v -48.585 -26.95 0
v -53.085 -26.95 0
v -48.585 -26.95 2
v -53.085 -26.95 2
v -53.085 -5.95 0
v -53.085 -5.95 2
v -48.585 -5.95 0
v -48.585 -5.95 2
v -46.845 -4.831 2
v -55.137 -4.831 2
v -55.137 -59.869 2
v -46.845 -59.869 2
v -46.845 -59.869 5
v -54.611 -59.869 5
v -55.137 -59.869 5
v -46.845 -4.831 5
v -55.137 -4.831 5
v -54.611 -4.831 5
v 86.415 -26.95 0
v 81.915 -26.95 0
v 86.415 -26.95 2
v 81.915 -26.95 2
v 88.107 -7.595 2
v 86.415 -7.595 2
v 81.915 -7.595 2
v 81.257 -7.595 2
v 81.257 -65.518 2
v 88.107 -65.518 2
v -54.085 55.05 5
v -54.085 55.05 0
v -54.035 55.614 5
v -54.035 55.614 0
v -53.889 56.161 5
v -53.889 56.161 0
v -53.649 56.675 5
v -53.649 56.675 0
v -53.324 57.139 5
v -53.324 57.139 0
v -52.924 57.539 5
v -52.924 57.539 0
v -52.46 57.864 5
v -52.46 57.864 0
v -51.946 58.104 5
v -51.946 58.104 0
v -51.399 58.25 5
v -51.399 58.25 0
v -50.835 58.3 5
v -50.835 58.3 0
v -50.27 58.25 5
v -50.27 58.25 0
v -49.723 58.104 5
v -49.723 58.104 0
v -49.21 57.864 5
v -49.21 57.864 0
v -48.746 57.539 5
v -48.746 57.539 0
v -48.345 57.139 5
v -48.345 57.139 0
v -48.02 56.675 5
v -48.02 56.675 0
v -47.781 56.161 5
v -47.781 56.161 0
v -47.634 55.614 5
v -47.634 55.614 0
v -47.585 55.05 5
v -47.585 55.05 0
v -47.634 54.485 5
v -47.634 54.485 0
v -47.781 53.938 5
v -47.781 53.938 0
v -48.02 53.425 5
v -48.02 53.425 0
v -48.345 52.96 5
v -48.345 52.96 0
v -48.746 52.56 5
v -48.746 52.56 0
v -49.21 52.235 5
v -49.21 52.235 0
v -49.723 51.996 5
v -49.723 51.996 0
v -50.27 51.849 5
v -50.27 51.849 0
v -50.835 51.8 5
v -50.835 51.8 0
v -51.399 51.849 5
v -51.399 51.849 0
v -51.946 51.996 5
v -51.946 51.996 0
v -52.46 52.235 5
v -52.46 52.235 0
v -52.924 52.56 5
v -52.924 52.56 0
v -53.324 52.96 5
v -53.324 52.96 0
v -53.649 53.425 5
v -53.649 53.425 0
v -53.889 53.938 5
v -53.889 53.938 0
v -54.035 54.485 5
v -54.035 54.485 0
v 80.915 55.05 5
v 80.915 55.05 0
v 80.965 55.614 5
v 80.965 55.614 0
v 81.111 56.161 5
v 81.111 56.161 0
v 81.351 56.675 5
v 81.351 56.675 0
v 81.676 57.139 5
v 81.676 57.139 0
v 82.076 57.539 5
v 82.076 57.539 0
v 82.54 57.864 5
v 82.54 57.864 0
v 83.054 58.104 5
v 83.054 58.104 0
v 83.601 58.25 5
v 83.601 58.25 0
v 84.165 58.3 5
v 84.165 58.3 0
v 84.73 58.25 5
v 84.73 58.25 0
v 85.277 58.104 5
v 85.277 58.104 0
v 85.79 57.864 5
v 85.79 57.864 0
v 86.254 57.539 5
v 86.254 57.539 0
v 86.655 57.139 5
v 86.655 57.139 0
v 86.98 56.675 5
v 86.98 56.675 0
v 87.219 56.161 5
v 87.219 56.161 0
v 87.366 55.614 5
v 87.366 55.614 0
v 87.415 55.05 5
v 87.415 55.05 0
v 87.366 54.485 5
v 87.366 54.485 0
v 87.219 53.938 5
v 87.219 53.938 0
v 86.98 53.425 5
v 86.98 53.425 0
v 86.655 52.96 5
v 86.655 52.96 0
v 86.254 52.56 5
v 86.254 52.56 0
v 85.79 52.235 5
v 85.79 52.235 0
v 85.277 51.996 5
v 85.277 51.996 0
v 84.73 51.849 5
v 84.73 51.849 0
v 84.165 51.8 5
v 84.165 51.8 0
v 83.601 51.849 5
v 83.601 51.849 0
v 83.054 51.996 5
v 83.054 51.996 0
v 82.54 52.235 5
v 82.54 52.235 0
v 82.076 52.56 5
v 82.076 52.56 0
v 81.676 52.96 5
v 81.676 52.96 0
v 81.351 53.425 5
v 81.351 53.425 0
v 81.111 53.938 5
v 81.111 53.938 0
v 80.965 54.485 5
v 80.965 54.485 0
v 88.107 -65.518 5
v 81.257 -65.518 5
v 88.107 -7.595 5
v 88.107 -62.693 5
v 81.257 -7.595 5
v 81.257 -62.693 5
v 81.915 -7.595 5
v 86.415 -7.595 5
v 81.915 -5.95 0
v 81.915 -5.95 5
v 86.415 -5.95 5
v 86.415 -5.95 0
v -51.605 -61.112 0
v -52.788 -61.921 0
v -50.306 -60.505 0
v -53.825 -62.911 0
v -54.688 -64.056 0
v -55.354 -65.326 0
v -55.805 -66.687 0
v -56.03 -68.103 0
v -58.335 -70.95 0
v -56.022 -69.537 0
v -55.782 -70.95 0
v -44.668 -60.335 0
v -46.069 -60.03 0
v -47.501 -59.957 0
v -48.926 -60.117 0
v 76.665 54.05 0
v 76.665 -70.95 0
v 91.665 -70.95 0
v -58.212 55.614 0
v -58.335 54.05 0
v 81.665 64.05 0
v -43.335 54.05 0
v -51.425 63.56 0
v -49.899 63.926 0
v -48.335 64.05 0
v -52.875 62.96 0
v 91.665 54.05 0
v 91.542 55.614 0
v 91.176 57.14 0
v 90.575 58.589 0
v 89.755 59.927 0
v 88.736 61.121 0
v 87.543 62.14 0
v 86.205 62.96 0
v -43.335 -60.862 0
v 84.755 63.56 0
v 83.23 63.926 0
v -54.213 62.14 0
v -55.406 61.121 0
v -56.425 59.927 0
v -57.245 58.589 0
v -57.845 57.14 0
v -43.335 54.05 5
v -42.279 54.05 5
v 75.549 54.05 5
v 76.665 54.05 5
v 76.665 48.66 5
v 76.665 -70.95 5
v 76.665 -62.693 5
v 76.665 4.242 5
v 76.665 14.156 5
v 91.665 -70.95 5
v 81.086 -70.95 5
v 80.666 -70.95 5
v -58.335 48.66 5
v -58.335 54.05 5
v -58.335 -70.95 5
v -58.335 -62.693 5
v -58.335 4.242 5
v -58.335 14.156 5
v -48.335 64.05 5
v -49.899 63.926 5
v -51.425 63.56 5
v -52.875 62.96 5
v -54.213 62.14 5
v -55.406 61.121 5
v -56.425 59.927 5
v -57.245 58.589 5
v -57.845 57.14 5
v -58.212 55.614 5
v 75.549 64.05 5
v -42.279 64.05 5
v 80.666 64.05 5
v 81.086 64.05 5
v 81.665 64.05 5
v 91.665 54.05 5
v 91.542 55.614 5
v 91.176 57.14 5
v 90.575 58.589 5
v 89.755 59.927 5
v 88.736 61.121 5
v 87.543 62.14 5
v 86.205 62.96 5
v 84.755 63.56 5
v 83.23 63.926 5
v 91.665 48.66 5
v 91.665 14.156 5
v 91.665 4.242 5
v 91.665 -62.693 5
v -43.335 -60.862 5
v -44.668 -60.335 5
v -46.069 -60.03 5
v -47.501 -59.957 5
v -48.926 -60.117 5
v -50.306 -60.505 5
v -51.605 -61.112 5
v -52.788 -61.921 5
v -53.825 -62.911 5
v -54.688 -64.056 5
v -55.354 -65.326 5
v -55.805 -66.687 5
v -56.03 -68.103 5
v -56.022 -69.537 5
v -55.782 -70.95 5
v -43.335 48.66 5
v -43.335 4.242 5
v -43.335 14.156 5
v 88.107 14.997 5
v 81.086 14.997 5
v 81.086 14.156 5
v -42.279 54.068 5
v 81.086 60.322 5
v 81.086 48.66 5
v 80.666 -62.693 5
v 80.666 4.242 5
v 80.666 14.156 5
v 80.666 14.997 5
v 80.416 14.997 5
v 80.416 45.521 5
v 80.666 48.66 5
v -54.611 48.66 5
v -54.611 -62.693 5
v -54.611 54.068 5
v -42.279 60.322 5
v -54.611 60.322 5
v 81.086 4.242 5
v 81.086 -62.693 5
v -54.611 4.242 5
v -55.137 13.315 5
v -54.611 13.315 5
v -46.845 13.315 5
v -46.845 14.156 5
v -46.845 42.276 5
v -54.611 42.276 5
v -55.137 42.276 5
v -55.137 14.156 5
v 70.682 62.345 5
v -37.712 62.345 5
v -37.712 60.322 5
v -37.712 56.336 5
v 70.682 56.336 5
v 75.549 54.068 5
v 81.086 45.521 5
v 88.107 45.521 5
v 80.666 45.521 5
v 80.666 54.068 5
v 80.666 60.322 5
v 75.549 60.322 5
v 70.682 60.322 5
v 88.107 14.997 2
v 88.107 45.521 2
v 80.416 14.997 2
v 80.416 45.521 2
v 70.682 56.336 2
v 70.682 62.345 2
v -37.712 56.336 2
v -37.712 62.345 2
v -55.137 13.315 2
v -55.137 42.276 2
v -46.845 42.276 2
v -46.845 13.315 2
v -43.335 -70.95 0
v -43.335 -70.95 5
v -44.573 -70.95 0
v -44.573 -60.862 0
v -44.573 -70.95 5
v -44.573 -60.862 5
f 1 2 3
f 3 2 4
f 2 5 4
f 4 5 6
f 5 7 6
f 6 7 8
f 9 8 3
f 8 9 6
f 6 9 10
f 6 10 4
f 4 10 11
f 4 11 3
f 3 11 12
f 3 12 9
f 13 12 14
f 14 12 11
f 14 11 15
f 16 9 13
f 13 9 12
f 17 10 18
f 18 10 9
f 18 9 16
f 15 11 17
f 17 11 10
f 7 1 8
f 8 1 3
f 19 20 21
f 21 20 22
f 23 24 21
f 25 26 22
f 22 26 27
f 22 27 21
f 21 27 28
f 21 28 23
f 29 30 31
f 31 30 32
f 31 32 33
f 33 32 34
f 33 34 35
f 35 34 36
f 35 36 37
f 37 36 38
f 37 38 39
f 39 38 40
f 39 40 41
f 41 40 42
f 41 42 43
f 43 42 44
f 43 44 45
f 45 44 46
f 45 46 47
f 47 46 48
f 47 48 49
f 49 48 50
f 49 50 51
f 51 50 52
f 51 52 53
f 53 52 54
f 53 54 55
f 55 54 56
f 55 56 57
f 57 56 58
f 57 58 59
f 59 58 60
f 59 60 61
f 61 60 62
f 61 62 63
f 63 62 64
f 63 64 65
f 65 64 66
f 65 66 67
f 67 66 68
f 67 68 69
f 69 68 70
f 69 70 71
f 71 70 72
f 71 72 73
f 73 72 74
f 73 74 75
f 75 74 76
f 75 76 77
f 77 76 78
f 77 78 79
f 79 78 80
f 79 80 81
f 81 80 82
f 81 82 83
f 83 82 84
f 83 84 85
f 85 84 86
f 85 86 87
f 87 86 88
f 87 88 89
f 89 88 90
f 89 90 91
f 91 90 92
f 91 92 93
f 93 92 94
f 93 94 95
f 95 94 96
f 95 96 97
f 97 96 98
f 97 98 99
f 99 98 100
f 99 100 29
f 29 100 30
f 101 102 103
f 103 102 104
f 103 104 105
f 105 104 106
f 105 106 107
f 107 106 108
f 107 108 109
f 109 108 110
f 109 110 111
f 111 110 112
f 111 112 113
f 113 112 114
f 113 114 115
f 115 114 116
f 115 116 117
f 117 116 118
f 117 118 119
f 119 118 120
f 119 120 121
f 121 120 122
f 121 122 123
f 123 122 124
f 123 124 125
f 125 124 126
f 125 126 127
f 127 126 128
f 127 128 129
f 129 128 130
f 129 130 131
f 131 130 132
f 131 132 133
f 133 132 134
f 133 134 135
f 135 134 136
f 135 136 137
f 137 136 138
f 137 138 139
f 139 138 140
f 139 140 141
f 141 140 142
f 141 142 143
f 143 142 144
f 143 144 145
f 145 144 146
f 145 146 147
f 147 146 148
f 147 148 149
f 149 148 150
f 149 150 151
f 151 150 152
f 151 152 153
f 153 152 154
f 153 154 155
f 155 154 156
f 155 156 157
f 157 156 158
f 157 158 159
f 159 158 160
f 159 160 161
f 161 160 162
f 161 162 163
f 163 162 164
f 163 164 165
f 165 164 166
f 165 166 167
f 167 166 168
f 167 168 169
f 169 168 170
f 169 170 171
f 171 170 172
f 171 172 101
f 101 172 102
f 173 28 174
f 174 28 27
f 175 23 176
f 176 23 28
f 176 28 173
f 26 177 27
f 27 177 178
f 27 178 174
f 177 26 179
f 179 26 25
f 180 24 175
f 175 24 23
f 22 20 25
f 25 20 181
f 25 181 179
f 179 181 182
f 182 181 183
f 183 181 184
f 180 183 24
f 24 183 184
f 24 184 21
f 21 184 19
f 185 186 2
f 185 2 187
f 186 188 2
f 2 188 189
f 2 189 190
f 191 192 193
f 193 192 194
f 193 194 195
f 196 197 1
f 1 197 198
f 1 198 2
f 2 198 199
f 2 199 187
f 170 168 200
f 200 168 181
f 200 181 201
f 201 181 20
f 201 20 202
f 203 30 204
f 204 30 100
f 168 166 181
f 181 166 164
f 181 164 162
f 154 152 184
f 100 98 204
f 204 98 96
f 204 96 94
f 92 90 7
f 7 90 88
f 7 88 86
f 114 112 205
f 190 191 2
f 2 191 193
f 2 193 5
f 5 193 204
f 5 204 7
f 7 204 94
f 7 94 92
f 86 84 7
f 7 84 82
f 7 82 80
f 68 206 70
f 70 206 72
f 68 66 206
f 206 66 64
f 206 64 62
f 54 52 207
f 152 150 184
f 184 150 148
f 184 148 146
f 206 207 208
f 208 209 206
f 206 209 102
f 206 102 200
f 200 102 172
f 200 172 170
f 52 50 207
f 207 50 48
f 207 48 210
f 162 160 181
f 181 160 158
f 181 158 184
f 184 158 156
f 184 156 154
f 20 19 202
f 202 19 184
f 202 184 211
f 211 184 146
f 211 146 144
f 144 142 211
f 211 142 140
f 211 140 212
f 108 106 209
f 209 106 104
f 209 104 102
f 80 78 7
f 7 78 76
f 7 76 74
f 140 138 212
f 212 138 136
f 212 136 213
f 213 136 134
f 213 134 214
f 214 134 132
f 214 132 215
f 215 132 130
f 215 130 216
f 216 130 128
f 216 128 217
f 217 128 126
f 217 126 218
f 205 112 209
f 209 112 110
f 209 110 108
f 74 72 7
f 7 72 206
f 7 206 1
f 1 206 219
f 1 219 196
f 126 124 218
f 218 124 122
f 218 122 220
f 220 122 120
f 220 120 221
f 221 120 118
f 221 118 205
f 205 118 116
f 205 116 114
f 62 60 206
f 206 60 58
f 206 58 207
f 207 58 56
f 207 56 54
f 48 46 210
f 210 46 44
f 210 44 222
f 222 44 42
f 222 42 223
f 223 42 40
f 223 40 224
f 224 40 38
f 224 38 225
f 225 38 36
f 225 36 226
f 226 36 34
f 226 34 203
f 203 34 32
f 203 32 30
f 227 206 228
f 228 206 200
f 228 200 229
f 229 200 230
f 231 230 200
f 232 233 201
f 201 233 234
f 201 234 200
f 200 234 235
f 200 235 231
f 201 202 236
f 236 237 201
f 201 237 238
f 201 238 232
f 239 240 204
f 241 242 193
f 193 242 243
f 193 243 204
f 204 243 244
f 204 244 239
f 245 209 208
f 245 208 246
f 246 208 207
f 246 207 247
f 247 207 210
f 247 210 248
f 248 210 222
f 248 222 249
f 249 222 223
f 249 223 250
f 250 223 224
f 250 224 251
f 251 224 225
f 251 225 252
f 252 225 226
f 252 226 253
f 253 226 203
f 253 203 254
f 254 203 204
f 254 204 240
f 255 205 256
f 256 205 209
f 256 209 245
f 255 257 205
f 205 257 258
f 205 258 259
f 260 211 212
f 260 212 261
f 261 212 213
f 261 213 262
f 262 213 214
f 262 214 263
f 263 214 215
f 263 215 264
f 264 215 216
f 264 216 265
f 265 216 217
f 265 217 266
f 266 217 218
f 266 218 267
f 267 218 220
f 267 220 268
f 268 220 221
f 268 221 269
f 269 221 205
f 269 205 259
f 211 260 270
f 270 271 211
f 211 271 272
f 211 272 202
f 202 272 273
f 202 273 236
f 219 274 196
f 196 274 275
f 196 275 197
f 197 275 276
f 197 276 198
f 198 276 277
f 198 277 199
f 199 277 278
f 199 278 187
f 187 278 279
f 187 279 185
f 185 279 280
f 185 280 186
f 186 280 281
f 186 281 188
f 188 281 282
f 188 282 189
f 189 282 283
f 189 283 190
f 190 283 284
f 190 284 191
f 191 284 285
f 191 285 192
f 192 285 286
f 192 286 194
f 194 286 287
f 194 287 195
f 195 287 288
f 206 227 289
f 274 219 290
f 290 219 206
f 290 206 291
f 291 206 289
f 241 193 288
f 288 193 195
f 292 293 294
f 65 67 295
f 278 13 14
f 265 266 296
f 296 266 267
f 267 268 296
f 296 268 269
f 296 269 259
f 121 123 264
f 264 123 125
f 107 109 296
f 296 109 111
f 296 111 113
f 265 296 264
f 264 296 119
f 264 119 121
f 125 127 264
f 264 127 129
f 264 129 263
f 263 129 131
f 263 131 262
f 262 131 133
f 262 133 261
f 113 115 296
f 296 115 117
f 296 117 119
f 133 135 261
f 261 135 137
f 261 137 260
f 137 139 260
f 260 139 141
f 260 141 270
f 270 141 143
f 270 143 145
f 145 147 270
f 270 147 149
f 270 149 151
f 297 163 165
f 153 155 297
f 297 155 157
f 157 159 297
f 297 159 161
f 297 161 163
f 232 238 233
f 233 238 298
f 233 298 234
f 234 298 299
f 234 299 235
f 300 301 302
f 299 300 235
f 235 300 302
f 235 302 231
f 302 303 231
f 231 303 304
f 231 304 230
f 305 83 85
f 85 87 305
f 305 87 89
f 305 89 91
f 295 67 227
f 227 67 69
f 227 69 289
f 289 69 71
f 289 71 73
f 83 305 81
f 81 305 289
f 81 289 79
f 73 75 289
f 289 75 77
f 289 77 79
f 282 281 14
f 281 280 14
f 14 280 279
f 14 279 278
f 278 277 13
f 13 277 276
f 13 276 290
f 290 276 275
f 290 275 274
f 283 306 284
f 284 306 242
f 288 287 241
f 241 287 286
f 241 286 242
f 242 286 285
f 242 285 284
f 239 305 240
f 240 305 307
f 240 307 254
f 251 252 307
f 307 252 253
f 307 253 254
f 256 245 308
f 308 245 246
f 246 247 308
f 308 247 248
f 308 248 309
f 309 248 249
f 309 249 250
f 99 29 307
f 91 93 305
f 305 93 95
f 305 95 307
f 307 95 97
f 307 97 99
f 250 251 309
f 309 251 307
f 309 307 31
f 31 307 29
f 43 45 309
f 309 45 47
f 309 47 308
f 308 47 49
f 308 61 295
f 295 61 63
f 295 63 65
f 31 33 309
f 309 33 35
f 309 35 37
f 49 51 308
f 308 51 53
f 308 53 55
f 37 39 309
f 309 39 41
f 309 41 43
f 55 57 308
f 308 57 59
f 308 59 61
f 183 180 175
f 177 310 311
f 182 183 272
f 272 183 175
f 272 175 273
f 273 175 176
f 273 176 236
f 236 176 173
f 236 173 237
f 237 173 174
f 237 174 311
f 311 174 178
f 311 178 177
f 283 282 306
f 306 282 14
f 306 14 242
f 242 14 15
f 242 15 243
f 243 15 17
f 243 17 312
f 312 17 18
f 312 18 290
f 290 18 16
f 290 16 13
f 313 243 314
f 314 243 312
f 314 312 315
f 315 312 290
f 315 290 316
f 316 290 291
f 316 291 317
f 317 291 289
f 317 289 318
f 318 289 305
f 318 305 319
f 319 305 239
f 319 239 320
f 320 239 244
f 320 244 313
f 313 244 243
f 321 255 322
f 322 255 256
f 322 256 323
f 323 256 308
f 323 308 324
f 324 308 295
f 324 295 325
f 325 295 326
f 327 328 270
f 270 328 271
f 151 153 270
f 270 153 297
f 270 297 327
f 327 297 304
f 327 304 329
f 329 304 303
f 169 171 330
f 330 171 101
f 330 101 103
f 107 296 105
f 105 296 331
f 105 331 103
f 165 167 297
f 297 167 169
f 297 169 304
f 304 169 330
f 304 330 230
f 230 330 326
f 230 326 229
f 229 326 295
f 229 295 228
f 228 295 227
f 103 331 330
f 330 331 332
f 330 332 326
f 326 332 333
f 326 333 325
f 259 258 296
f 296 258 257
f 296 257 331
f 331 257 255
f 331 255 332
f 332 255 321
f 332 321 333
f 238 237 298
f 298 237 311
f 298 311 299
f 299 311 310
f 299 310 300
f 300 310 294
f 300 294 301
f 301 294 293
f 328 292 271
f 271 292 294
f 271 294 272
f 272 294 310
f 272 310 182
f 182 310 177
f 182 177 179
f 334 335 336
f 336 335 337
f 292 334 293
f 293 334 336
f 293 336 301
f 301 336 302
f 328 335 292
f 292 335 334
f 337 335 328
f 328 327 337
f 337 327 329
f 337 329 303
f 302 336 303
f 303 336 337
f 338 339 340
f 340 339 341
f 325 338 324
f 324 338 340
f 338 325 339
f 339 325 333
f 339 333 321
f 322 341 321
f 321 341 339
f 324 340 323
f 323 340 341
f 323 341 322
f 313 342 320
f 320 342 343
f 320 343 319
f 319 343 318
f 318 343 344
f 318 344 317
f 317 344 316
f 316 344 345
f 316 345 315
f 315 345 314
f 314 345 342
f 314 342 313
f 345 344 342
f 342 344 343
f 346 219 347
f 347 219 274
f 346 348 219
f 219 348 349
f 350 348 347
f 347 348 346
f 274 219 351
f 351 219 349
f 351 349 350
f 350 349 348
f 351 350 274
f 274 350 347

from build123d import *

# Parameters (mm, degrees)
SKETCH2_W           = 120
SKETCH2_H           = 115
BOSS_EXTRUDE1_DEPTH = 152
SKETCH3_W           = 120
SKETCH3_H           = 13.389184999
CUT_EXTRUDE1_DEPTH  = 192.155706765
SKETCH5_R           = 3.25
CUT_EXTRUDE2_DEPTH  = 30
SKETCH6_W           = 4.5
SKETCH6_H           = 21
CUT_EXTRUDE4_DEPTH  = 16
CUT_EXTRUDE5_START  = -15
SKETCH7_R           = 3.25
CUT_EXTRUDE5_DEPTH  = 15
SKETCH8_W           = 8.291807731
SKETCH8_H           = 28.961241497
SKETCH8_H_2         = 55.038375958
SKETCH8_W_2         = 108.394356143
SKETCH8_H_3         = 6.008556327
SKETCH8_W_3         = 7.690952099
SKETCH8_H_4         = 30.523466142
SKETCH8_W_4         = 6.849754213
SKETCH8_H_5         = 57.922482994
CUT_EXTRUDE6_DEPTH  = 150
CUT_EXTRUDE7_DEPTH  = 192.155706765
SKETCH10_W          = 147
SKETCH10_H          = 135
CUT_EXTRUDE8_DEPTH  = 226.028821495


with BuildPart() as part:
    # Sketch2 → Boss-Extrude1 (new body)
    with BuildSketch(Plane.XY):
        with BuildLine():
            Line((-48.334664537, 64.049520767), (81.665335463, 64.049520767))
            ThreePointArc((81.665335463, 64.049520767), (88.736403275, 61.120588579), (91.665335463, 54.049520767))
            Line((91.665335463, 54.049520767), (91.665335463, -70.950479233))
            Line((91.665335463, -70.950479233), (-58.334664537, -70.950479233))
            Line((-58.334664537, -70.950479233), (-58.334664537, 54.049520767))
            ThreePointArc((-58.334664537, 54.049520767), (-55.405732349, 61.120588579), (-48.334664537, 64.049520767))
        make_face()
        with Locations((16.665335463, -3.450479233)):
            Rectangle(SKETCH2_W, SKETCH2_H, mode=Mode.SUBTRACT)
    extrude(amount=BOSS_EXTRUDE1_DEPTH)

    # Sketch3 → Cut-Extrude1 (cut, through all)
    with BuildSketch(Plane.XY.offset(152)):
        with Locations((16.665335463, -67.645071732)):
            Rectangle(SKETCH3_W, SKETCH3_H)
    extrude(amount=-CUT_EXTRUDE1_DEPTH, mode=Mode.SUBTRACT)

    # Sketch5 → Cut-Extrude2 (cut)
    with BuildSketch(Plane(origin=(0, 0, 0), x_dir=(-1, 0, 0), z_dir=(0, 0, -1))):
        with Locations((-84.165335463, 55.049520767)):
            Circle(SKETCH5_R)
        with Locations((50.834664537, 55.049520767)):
            Circle(SKETCH5_R)
    extrude(amount=-CUT_EXTRUDE2_DEPTH, mode=Mode.SUBTRACT)

    # Sketch6 → Cut-Extrude4 (cut)
    with BuildSketch(Plane(origin=(0, 0, 0), x_dir=(-1, 0, 0), z_dir=(0, 0, -1))):
        with Locations((50.834664537, -16.450479233)):
            Rectangle(SKETCH6_W, SKETCH6_H)
        with Locations((-84.165335463, -16.450479233)):
            Rectangle(SKETCH6_W, SKETCH6_H)
    extrude(amount=-CUT_EXTRUDE4_DEPTH, mode=Mode.SUBTRACT)

    # Sketch7 → Cut-Extrude5 (cut)
    with BuildSketch(Plane.XY.offset(152).offset(CUT_EXTRUDE5_START)):
        with Locations((-50.834664537, 55.049520767)):
            Circle(SKETCH7_R)
        with Locations((-50.834664537, 4.049520767)):
            Circle(SKETCH7_R)
        with Locations((84.165335463, 4.049520767)):
            Circle(SKETCH7_R)
        with Locations((84.165335463, 55.049520767)):
            Circle(SKETCH7_R)
    extrude(amount=CUT_EXTRUDE5_DEPTH, mode=Mode.SUBTRACT)

    # Sketch8 → Cut-Extrude6 (cut)
    with BuildSketch(Plane.XY.offset(152)):
        with Locations((-50.991008781, 27.795371112)):
            Rectangle(SKETCH8_W, SKETCH8_H)
        with Locations((-50.991008781, -32.350277723)):
            Rectangle(SKETCH8_W, SKETCH8_H_2)
        with Locations((16.485078773, 59.340291831)):
            Rectangle(SKETCH8_W_2, SKETCH8_H_3)
        with Locations((84.261594145, 30.258879207)):
            Rectangle(SKETCH8_W_3, SKETCH8_H_4)
        with Locations((84.682193087, -36.556267152)):
            Rectangle(SKETCH8_W_4, SKETCH8_H_5)
    extrude(amount=-CUT_EXTRUDE6_DEPTH, mode=Mode.SUBTRACT)

    # Sketch9 → Cut-Extrude7 (cut, through all)
    with BuildSketch(Plane.XY.offset(152)):
        with BuildLine():
            Line((-55.78242584, -70.950479233), (-44.573216516, -70.950479233))
            Line((-44.573216516, -70.950479233), (-44.573216516, -60.861864812))
            Line((-44.573216516, -60.861864812), (-43.334664537, -60.861864812))
            ThreePointArc((-43.334664537, -60.861864812), (-52.78845028, -61.92097783), (-55.78242584, -70.950479233))
        make_face()
    extrude(amount=-CUT_EXTRUDE7_DEPTH, mode=Mode.SUBTRACT)


with BuildPart() as cut_extrude7_piece_1:
    # of the separate pieces the step leaves, piece 1, a body of its own (cut_extrude7_pieces)
    add(part.part.solids().sort_by_distance((-48.334664537, 64.049520767, 0))[0])


with BuildPart() as cut_extrude7_piece_2:
    # of the separate pieces the step leaves, piece 2, a body of its own (cut_extrude7_pieces)
    add(part.part.solids().sort_by_distance((-43.334664537, -70.950479233, 0))[0])


with BuildPart() as cut_extrude8_tool:
    # Sketch10 → Cut-Extrude8 (new, through all)
    with BuildSketch(Plane(origin=(91.665335463, 0, 0), x_dir=(0, 0, -1), z_dir=(1, 0, 0))):
        with Locations((-78.5, -3.450479233)):
            Rectangle(SKETCH10_W, SKETCH10_H)
    extrude(amount=-CUT_EXTRUDE8_DEPTH)


with BuildPart() as cut_extrude7_piece_1_1:
    add(cut_extrude7_piece_1.part)

    # Cut-Extrude8: cut by cut_extrude8_tool
    add(cut_extrude8_tool.part, mode=Mode.SUBTRACT)


with BuildPart() as cut_extrude7_piece_2_1:
    add(cut_extrude7_piece_2.part)

    # Cut-Extrude8: cut by cut_extrude8_tool
    add(cut_extrude8_tool.part, mode=Mode.SUBTRACT)


solid = Compound([cut_extrude7_piece_1_1.part, cut_extrude7_piece_2_1.part])
